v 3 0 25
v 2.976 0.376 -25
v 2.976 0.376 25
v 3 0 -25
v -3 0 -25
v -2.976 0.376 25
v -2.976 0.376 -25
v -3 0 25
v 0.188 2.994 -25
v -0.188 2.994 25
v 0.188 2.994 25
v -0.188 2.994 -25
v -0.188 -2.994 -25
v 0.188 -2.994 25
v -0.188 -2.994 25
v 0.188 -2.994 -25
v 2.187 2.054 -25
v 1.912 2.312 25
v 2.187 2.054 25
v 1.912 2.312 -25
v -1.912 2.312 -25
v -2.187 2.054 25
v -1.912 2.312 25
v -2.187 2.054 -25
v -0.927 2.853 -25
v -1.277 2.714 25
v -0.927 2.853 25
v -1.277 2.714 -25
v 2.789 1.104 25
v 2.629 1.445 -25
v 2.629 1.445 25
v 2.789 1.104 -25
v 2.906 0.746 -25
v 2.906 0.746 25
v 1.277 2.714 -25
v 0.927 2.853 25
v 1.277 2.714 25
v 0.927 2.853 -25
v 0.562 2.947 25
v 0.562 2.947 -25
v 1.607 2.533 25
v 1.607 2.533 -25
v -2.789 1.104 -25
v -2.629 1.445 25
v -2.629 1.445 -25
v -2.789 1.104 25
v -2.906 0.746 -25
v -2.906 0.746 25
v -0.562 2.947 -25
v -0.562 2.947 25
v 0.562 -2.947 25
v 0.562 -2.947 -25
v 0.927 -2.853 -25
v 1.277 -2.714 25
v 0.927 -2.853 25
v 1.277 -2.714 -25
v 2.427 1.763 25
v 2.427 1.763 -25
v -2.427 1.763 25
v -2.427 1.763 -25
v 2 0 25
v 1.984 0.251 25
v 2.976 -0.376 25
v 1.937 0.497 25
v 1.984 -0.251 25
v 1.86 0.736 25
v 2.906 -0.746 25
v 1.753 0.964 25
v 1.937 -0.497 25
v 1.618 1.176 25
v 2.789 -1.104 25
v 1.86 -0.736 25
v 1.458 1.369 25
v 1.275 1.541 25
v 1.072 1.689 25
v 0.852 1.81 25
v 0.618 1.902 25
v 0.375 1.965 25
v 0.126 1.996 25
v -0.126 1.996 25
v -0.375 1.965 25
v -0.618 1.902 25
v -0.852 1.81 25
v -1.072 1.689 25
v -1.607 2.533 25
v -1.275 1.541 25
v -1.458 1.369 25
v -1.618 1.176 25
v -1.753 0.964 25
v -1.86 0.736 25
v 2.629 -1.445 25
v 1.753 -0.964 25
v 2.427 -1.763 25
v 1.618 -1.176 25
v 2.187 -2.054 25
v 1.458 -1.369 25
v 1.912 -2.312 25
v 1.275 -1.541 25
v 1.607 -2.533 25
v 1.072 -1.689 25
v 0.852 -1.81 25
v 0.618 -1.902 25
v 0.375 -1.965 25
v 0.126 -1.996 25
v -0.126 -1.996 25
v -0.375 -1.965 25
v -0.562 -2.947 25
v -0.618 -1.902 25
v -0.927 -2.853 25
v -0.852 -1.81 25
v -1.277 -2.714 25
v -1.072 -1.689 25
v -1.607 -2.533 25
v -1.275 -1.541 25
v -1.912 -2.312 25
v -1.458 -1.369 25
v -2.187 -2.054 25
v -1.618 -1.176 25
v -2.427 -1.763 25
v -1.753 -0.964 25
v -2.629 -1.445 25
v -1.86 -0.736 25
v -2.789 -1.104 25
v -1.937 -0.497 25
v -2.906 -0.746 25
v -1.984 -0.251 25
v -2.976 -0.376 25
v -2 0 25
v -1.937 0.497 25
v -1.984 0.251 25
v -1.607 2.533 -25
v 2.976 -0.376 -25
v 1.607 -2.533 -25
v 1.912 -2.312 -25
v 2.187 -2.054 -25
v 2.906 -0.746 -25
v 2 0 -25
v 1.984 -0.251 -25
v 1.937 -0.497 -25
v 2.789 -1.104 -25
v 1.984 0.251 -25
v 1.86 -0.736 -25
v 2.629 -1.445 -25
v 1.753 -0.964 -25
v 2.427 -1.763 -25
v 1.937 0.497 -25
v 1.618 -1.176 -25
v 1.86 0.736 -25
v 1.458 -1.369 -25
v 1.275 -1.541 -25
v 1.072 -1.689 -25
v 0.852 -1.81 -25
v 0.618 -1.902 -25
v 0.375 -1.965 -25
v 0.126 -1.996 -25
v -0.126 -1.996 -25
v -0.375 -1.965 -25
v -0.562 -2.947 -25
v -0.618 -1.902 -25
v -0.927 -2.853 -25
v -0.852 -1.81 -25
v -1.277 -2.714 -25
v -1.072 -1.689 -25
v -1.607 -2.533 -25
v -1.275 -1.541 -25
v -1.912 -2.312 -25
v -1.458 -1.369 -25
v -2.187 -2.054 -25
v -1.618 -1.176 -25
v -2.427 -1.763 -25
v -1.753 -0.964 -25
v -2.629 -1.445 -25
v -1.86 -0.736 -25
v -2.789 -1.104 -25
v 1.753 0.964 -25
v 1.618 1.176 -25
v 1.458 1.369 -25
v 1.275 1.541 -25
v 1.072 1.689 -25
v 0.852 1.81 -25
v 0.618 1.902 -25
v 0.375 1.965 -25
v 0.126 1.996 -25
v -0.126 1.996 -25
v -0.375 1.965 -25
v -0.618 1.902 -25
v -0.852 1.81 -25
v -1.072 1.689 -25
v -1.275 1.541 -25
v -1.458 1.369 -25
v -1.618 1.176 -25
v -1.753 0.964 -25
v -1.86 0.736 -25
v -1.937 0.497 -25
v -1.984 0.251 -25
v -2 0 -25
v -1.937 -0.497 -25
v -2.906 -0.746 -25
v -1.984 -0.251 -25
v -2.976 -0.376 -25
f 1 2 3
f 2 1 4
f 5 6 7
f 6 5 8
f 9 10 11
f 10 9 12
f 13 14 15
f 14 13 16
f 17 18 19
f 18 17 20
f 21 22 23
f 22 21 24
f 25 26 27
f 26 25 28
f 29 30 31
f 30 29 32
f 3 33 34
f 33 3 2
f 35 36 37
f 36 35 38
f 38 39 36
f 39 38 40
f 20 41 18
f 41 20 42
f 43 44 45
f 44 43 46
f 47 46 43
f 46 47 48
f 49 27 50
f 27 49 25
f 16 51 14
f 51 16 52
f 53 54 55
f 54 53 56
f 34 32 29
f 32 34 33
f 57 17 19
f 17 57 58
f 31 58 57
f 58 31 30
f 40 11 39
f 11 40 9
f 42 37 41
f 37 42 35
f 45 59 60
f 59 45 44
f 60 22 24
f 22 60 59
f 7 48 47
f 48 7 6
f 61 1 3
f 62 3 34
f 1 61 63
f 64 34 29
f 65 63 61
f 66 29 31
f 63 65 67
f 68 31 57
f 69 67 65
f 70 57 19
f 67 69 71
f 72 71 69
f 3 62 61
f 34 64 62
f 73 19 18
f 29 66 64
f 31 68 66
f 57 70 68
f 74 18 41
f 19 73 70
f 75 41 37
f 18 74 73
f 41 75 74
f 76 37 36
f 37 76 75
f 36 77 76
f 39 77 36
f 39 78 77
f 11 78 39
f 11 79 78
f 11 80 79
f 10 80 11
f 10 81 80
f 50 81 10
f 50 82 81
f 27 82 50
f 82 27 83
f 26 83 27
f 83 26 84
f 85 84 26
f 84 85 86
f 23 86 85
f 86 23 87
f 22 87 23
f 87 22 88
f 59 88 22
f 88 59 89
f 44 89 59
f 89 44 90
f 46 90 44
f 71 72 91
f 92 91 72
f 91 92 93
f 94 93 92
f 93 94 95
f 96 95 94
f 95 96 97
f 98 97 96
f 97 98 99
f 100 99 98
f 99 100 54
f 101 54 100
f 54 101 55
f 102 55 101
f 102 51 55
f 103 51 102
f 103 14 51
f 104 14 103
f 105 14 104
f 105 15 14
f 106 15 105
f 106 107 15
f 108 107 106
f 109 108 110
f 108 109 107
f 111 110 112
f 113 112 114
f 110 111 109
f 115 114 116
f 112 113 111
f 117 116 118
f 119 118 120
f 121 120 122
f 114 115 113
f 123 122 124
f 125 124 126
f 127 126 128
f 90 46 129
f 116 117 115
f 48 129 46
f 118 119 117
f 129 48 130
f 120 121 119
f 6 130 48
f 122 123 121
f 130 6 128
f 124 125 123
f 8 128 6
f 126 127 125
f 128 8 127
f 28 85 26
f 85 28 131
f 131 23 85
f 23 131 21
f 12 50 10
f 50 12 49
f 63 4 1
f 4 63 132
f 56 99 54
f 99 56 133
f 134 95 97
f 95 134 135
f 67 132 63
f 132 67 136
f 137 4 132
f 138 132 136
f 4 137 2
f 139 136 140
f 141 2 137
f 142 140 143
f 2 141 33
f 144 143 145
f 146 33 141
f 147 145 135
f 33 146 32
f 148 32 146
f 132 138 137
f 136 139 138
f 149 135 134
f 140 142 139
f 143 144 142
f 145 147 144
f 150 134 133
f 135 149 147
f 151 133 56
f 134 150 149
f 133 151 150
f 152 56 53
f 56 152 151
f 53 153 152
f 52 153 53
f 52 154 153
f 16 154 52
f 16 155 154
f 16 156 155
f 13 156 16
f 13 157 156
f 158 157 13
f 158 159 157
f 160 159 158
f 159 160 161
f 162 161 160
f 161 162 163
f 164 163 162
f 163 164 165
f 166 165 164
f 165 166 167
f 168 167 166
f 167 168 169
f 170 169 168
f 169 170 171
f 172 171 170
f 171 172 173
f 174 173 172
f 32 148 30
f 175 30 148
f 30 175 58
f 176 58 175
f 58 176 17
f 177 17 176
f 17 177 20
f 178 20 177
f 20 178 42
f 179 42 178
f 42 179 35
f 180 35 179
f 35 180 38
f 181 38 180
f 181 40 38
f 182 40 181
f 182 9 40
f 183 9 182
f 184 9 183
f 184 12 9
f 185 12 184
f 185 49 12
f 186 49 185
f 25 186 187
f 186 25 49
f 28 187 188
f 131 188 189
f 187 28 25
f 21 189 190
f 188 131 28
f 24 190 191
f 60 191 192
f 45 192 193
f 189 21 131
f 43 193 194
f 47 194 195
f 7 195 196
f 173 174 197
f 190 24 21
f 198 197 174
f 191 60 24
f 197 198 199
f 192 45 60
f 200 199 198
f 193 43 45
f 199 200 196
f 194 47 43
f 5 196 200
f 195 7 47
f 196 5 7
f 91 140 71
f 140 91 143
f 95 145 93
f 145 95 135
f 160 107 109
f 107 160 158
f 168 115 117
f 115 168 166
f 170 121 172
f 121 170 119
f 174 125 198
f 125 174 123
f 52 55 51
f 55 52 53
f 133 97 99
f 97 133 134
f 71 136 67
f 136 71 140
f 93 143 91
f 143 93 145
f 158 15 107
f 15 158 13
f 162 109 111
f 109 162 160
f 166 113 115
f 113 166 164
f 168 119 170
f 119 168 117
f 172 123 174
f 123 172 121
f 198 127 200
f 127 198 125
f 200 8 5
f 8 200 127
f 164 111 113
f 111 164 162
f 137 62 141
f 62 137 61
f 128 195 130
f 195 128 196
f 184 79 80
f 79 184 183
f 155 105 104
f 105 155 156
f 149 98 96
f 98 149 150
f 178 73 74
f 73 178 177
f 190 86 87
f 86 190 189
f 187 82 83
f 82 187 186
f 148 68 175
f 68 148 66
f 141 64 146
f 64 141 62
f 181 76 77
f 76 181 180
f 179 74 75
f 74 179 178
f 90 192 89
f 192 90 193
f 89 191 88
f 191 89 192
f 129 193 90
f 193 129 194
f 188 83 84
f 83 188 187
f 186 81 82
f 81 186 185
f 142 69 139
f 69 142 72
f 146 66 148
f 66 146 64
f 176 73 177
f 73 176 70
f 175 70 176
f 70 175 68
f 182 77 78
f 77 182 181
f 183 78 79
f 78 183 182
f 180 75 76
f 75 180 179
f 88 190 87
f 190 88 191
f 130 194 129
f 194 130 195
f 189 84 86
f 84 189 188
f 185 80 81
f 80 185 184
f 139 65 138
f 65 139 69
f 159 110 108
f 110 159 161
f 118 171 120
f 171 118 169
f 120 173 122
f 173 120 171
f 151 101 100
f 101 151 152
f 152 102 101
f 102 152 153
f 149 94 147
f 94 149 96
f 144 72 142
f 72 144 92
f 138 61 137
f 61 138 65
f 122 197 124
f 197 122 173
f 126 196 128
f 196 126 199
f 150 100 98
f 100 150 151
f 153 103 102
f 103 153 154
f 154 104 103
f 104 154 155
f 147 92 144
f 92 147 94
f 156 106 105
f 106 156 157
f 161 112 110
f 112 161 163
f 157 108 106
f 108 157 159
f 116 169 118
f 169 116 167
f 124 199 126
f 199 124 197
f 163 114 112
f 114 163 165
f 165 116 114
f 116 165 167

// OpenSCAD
$fn = 50;


difference() {
	union() {
		translate(v = [0, 0, -25.0000000000]) {
			cylinder(h = 50, r = 3.0000000000);
		}
	}
	union() {
		translate(v = [0, 0, -100.0000000000]) {
			cylinder(h = 200, r = 2);
		}
	}
}
